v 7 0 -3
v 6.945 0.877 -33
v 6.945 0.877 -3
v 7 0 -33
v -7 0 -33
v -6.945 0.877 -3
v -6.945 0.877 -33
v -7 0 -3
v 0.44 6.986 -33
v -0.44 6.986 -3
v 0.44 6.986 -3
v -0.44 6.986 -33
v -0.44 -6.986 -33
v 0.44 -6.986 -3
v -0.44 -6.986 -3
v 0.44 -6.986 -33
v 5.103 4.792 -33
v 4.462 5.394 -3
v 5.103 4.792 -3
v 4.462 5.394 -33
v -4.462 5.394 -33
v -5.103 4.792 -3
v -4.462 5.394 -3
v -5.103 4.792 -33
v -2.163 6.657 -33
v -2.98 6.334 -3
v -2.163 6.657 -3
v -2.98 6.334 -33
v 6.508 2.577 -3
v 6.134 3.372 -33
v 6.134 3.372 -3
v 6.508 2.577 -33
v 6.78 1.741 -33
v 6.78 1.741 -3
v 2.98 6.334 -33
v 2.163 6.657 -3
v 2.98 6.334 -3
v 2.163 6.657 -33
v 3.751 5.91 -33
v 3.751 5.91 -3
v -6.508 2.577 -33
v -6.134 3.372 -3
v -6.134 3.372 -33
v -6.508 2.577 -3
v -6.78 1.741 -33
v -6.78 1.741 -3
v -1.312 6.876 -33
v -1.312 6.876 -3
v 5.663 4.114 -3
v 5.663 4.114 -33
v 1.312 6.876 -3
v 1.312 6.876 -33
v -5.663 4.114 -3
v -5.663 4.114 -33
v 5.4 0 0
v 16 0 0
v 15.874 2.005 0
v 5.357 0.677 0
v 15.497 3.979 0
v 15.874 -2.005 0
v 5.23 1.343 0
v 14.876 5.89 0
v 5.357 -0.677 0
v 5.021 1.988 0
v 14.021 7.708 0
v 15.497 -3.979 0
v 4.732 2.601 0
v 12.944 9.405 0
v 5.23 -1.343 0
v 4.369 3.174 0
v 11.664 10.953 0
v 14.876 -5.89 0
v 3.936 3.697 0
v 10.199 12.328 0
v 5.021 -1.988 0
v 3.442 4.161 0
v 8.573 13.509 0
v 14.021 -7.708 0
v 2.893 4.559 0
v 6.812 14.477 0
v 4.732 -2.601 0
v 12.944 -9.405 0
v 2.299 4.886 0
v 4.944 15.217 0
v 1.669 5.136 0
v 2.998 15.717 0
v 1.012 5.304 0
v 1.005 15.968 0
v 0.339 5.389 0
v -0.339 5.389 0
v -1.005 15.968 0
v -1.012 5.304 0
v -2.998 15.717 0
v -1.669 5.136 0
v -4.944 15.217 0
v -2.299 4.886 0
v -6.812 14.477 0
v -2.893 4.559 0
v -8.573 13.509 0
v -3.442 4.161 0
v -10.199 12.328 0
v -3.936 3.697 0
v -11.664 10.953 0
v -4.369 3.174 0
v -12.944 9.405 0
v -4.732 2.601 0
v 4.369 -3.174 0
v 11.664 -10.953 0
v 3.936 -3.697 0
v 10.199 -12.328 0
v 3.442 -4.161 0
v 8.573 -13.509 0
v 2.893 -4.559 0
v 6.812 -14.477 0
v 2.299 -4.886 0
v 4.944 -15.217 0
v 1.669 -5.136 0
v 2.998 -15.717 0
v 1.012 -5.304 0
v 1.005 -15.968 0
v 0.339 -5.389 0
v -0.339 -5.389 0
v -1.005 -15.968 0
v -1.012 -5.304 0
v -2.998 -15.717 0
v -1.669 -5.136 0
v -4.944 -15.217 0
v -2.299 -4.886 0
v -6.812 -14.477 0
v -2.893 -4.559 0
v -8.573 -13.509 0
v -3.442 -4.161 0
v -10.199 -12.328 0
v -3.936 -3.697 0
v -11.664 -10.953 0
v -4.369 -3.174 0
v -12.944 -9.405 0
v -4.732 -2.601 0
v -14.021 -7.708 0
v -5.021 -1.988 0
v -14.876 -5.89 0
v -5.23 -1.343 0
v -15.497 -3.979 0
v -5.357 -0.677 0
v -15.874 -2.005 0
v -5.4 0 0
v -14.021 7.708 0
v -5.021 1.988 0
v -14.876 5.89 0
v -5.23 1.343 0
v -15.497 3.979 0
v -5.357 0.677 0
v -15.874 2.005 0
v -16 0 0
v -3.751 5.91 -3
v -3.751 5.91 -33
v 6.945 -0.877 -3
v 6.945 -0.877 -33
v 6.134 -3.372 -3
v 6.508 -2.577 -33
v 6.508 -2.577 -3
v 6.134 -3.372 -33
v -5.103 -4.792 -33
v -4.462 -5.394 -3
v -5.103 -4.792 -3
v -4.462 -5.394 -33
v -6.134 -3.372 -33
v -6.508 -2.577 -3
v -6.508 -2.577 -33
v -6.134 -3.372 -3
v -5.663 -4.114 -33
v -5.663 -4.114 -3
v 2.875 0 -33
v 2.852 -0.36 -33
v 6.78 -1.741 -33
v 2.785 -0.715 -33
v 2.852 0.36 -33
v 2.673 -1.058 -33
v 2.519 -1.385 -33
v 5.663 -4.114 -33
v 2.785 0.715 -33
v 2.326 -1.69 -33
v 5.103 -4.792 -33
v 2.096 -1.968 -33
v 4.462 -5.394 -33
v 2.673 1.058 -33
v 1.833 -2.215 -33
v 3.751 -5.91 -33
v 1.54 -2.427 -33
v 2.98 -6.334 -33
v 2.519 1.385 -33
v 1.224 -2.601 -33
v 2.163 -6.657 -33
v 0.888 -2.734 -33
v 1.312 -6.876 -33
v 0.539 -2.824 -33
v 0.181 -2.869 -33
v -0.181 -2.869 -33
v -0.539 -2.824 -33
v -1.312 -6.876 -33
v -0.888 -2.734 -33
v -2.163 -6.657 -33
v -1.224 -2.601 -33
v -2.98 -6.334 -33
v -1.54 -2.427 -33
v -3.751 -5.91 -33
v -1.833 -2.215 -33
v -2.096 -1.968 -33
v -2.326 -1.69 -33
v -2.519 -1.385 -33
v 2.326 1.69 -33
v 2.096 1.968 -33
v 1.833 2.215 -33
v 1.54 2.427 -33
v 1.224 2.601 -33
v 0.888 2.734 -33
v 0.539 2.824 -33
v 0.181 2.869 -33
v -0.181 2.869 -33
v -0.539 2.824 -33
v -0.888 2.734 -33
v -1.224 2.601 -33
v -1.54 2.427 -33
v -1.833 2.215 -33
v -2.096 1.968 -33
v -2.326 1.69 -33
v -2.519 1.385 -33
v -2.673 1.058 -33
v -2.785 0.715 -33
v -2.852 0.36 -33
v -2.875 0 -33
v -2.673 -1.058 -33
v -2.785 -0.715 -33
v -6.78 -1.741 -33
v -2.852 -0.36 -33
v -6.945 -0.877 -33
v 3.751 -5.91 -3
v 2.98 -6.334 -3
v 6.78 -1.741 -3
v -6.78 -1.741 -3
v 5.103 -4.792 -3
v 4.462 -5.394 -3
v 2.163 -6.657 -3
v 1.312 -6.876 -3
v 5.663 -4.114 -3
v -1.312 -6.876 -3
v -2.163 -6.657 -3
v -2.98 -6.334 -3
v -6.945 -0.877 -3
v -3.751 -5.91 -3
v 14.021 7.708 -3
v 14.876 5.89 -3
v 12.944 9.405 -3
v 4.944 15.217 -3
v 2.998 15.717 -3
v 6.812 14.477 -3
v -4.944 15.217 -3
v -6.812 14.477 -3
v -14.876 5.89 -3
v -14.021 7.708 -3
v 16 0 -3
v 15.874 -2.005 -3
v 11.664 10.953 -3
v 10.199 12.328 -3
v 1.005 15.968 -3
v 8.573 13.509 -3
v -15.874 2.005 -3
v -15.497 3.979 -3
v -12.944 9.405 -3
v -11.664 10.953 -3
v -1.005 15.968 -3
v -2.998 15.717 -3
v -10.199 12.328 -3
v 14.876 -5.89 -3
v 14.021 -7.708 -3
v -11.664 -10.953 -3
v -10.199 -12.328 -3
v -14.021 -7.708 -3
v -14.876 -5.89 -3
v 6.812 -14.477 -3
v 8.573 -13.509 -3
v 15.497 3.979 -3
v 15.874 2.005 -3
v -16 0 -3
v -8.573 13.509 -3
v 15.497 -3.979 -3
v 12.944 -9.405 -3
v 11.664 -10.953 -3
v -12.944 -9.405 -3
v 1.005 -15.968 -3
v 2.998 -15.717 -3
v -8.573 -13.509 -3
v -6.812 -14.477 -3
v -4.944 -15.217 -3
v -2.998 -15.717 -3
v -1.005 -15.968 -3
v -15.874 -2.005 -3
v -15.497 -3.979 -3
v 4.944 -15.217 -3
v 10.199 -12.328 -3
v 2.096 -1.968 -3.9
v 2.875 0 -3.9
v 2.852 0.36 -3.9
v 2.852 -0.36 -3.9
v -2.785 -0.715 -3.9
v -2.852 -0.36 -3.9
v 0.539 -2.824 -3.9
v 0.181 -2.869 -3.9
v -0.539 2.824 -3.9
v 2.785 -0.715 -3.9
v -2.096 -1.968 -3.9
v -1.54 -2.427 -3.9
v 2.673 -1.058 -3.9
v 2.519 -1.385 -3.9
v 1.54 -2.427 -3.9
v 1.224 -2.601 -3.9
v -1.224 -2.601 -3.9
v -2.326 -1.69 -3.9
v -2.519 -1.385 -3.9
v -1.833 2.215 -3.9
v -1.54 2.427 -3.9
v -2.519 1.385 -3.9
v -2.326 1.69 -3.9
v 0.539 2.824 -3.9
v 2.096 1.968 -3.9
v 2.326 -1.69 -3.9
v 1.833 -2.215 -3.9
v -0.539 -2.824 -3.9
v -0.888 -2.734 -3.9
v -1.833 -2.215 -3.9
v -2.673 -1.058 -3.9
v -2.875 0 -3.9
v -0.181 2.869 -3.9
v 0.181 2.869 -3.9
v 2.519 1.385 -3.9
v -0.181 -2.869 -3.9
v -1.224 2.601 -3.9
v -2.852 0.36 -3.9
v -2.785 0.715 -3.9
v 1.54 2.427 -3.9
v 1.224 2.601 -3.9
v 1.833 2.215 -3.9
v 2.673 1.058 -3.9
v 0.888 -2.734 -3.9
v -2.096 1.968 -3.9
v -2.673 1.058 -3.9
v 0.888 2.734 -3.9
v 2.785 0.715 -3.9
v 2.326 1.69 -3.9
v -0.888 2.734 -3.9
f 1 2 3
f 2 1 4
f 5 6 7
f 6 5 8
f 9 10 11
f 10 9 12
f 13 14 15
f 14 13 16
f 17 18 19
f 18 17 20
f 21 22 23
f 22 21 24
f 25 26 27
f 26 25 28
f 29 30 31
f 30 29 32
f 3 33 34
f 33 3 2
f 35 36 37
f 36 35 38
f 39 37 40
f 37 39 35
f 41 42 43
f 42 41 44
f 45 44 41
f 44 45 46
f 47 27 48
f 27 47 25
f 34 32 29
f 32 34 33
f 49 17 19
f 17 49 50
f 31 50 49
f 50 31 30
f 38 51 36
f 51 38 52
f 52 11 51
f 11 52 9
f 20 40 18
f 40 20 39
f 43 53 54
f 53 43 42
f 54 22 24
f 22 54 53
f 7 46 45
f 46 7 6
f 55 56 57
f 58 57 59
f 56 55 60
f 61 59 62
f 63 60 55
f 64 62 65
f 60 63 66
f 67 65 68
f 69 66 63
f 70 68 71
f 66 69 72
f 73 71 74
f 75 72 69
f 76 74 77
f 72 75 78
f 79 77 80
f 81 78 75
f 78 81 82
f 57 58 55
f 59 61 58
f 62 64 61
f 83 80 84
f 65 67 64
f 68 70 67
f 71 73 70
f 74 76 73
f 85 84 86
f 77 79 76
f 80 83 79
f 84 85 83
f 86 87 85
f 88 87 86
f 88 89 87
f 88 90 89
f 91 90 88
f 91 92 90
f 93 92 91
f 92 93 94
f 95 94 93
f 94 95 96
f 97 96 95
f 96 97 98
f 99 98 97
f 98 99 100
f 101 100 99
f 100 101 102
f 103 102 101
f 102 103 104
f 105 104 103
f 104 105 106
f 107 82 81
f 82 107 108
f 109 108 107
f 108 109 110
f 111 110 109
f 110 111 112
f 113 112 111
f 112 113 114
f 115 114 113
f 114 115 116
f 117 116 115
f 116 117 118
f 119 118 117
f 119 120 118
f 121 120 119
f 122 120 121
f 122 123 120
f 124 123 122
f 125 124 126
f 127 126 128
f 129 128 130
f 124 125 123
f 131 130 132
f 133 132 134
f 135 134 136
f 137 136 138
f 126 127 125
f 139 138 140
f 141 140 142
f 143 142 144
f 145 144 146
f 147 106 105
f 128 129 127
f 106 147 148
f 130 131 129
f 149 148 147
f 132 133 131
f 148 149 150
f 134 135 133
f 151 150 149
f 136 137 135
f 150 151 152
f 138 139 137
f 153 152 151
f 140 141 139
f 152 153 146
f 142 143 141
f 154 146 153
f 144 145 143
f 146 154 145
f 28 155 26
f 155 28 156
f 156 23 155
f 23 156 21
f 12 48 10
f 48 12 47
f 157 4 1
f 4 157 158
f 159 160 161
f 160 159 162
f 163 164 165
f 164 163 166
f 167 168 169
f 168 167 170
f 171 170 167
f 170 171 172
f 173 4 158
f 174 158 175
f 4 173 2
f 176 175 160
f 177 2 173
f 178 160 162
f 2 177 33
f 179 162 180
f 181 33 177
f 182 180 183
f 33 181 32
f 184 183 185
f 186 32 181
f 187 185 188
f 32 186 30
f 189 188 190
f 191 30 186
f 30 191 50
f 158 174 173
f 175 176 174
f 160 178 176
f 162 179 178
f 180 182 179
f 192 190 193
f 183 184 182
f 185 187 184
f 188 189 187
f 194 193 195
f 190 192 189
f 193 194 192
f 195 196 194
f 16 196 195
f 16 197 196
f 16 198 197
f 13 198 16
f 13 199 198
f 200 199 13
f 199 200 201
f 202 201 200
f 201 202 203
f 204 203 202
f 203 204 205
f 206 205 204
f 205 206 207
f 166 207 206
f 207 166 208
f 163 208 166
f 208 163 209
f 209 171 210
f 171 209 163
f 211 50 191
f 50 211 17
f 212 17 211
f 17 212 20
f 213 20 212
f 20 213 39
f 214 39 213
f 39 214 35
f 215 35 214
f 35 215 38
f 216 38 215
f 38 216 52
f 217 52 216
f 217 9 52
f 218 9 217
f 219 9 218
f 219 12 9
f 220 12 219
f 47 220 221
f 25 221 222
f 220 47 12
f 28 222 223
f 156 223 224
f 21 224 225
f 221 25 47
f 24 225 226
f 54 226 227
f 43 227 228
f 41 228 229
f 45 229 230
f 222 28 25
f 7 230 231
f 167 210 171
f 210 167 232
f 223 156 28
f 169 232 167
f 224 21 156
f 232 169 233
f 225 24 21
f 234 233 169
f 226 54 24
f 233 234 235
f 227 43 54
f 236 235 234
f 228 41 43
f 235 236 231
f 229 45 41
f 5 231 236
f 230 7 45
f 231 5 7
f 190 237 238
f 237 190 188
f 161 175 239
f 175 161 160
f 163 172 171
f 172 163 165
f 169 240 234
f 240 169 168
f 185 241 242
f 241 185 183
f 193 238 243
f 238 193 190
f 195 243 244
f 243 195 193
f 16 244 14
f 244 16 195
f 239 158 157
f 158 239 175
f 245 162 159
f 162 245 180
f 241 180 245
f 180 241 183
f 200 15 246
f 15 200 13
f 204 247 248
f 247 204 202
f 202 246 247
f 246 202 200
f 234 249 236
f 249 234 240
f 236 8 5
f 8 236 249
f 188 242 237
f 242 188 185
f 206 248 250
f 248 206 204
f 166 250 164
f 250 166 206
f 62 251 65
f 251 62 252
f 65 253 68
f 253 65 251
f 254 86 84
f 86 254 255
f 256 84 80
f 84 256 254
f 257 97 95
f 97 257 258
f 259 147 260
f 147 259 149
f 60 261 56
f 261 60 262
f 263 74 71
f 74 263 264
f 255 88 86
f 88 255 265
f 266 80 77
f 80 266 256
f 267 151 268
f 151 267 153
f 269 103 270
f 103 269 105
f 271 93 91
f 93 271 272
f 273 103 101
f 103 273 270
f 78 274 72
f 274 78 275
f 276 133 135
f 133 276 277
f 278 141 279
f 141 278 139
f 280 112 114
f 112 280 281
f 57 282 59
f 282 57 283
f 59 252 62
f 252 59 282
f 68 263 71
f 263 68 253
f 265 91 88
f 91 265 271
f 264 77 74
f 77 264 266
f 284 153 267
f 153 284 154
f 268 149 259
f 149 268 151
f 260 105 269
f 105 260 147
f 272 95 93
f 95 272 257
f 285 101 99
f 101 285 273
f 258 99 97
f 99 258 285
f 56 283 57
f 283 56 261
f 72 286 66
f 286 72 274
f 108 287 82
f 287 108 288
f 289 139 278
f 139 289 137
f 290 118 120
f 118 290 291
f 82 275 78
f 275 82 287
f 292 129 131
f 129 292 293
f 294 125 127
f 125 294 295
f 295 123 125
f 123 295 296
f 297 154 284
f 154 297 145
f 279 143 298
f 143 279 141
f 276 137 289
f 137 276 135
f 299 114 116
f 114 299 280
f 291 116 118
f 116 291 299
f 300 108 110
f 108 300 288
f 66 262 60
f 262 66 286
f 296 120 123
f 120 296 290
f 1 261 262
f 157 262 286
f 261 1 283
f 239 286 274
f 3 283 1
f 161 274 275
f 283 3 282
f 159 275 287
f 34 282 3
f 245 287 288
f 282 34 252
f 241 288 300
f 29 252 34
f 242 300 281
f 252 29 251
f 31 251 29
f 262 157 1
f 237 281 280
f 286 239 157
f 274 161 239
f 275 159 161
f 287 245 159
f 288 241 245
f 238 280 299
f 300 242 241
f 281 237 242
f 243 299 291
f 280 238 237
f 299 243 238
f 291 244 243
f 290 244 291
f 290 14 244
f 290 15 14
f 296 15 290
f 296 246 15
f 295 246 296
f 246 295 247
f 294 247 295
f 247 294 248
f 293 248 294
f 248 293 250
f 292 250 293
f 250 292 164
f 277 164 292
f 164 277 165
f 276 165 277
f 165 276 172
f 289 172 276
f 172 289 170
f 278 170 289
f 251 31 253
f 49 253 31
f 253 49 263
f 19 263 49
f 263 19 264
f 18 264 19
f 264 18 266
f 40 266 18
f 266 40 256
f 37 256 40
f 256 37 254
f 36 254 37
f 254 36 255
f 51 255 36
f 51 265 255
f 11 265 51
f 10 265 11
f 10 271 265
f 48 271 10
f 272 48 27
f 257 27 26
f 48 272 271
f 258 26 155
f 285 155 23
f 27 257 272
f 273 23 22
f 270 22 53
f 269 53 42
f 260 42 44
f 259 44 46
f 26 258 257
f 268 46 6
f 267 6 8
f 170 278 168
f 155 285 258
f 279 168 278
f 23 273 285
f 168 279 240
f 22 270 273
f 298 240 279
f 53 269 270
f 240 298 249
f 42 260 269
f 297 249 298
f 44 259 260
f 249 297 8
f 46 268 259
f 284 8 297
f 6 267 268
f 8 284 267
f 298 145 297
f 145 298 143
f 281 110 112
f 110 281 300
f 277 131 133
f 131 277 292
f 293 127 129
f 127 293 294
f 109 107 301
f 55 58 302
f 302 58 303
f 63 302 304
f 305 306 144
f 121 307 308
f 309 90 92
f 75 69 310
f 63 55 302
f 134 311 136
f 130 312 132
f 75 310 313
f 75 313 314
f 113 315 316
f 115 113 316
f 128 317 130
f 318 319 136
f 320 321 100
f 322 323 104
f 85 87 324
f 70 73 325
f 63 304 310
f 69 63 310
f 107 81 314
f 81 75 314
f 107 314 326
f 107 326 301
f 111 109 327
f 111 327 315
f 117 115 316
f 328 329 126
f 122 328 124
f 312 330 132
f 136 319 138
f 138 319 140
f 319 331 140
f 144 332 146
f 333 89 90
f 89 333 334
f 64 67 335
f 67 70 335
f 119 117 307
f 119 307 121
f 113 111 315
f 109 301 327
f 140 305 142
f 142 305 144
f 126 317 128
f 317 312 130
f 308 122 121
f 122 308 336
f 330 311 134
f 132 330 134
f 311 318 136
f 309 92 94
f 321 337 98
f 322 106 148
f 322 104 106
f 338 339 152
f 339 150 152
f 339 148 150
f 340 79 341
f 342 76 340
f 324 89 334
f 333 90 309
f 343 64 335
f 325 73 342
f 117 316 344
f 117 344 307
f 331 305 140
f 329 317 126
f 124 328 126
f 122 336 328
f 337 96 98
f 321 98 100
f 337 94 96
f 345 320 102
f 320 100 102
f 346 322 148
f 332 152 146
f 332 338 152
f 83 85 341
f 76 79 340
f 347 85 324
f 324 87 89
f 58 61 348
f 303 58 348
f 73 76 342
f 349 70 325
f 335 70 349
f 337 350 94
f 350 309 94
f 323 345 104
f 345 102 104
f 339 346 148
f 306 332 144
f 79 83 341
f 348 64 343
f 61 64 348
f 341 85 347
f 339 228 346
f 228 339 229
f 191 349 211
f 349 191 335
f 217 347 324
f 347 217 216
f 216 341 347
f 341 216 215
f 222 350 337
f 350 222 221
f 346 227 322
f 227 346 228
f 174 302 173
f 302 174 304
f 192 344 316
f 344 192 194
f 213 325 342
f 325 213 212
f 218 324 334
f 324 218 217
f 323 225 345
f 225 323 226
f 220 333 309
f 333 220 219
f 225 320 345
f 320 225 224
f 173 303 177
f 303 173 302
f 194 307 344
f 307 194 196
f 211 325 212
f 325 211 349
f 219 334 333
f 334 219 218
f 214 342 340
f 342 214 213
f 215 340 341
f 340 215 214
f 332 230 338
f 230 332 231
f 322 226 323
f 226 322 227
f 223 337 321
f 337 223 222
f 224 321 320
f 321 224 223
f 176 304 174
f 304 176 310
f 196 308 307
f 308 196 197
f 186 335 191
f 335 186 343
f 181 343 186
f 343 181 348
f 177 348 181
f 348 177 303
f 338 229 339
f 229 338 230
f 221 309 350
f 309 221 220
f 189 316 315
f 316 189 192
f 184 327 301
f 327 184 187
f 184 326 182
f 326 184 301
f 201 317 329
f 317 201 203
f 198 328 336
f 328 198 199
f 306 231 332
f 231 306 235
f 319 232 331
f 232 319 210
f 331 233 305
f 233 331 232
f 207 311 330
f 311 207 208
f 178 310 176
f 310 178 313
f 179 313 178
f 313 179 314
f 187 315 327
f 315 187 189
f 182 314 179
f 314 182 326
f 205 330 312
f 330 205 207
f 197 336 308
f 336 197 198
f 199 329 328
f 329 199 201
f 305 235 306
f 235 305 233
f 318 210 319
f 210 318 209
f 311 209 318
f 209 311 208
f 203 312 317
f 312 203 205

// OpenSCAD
$fn = 50;


difference() {
	union() {
		translate(v = [0, 0, -33.0000000000]) {
			cylinder(h = 33, r = 7.0000000000);
		}
		translate(v = [0, 0, -3.0000000000]) {
			cylinder(h = 3, r = 16.0000000000);
		}
	}
	union() {
		translate(v = [0, 0, 0]) {
			rotate(a = [0, 0, 0]) {
				difference() {
					union() {
						#translate(v = [0, 0, -33.0000000000]) {
							cylinder(h = 33, r = 2.6000000000);
						}
						#translate(v = [0, 0, -3.9000000000]) {
							cylinder(h = 3.9000000000, r = 7.0000000000, r1 = 2.8750000000, r2 = 5.4000000000);
						}
						#translate(v = [0, 0, -33.0000000000]) {
							cylinder(h = 33, r = 2.8750000000);
						}
						#translate(v = [0, 0, -33.0000000000]) {
							cylinder(h = 33, r = 2.6000000000);
						}
					}
					union();
				}
			}
		}
	}
}
